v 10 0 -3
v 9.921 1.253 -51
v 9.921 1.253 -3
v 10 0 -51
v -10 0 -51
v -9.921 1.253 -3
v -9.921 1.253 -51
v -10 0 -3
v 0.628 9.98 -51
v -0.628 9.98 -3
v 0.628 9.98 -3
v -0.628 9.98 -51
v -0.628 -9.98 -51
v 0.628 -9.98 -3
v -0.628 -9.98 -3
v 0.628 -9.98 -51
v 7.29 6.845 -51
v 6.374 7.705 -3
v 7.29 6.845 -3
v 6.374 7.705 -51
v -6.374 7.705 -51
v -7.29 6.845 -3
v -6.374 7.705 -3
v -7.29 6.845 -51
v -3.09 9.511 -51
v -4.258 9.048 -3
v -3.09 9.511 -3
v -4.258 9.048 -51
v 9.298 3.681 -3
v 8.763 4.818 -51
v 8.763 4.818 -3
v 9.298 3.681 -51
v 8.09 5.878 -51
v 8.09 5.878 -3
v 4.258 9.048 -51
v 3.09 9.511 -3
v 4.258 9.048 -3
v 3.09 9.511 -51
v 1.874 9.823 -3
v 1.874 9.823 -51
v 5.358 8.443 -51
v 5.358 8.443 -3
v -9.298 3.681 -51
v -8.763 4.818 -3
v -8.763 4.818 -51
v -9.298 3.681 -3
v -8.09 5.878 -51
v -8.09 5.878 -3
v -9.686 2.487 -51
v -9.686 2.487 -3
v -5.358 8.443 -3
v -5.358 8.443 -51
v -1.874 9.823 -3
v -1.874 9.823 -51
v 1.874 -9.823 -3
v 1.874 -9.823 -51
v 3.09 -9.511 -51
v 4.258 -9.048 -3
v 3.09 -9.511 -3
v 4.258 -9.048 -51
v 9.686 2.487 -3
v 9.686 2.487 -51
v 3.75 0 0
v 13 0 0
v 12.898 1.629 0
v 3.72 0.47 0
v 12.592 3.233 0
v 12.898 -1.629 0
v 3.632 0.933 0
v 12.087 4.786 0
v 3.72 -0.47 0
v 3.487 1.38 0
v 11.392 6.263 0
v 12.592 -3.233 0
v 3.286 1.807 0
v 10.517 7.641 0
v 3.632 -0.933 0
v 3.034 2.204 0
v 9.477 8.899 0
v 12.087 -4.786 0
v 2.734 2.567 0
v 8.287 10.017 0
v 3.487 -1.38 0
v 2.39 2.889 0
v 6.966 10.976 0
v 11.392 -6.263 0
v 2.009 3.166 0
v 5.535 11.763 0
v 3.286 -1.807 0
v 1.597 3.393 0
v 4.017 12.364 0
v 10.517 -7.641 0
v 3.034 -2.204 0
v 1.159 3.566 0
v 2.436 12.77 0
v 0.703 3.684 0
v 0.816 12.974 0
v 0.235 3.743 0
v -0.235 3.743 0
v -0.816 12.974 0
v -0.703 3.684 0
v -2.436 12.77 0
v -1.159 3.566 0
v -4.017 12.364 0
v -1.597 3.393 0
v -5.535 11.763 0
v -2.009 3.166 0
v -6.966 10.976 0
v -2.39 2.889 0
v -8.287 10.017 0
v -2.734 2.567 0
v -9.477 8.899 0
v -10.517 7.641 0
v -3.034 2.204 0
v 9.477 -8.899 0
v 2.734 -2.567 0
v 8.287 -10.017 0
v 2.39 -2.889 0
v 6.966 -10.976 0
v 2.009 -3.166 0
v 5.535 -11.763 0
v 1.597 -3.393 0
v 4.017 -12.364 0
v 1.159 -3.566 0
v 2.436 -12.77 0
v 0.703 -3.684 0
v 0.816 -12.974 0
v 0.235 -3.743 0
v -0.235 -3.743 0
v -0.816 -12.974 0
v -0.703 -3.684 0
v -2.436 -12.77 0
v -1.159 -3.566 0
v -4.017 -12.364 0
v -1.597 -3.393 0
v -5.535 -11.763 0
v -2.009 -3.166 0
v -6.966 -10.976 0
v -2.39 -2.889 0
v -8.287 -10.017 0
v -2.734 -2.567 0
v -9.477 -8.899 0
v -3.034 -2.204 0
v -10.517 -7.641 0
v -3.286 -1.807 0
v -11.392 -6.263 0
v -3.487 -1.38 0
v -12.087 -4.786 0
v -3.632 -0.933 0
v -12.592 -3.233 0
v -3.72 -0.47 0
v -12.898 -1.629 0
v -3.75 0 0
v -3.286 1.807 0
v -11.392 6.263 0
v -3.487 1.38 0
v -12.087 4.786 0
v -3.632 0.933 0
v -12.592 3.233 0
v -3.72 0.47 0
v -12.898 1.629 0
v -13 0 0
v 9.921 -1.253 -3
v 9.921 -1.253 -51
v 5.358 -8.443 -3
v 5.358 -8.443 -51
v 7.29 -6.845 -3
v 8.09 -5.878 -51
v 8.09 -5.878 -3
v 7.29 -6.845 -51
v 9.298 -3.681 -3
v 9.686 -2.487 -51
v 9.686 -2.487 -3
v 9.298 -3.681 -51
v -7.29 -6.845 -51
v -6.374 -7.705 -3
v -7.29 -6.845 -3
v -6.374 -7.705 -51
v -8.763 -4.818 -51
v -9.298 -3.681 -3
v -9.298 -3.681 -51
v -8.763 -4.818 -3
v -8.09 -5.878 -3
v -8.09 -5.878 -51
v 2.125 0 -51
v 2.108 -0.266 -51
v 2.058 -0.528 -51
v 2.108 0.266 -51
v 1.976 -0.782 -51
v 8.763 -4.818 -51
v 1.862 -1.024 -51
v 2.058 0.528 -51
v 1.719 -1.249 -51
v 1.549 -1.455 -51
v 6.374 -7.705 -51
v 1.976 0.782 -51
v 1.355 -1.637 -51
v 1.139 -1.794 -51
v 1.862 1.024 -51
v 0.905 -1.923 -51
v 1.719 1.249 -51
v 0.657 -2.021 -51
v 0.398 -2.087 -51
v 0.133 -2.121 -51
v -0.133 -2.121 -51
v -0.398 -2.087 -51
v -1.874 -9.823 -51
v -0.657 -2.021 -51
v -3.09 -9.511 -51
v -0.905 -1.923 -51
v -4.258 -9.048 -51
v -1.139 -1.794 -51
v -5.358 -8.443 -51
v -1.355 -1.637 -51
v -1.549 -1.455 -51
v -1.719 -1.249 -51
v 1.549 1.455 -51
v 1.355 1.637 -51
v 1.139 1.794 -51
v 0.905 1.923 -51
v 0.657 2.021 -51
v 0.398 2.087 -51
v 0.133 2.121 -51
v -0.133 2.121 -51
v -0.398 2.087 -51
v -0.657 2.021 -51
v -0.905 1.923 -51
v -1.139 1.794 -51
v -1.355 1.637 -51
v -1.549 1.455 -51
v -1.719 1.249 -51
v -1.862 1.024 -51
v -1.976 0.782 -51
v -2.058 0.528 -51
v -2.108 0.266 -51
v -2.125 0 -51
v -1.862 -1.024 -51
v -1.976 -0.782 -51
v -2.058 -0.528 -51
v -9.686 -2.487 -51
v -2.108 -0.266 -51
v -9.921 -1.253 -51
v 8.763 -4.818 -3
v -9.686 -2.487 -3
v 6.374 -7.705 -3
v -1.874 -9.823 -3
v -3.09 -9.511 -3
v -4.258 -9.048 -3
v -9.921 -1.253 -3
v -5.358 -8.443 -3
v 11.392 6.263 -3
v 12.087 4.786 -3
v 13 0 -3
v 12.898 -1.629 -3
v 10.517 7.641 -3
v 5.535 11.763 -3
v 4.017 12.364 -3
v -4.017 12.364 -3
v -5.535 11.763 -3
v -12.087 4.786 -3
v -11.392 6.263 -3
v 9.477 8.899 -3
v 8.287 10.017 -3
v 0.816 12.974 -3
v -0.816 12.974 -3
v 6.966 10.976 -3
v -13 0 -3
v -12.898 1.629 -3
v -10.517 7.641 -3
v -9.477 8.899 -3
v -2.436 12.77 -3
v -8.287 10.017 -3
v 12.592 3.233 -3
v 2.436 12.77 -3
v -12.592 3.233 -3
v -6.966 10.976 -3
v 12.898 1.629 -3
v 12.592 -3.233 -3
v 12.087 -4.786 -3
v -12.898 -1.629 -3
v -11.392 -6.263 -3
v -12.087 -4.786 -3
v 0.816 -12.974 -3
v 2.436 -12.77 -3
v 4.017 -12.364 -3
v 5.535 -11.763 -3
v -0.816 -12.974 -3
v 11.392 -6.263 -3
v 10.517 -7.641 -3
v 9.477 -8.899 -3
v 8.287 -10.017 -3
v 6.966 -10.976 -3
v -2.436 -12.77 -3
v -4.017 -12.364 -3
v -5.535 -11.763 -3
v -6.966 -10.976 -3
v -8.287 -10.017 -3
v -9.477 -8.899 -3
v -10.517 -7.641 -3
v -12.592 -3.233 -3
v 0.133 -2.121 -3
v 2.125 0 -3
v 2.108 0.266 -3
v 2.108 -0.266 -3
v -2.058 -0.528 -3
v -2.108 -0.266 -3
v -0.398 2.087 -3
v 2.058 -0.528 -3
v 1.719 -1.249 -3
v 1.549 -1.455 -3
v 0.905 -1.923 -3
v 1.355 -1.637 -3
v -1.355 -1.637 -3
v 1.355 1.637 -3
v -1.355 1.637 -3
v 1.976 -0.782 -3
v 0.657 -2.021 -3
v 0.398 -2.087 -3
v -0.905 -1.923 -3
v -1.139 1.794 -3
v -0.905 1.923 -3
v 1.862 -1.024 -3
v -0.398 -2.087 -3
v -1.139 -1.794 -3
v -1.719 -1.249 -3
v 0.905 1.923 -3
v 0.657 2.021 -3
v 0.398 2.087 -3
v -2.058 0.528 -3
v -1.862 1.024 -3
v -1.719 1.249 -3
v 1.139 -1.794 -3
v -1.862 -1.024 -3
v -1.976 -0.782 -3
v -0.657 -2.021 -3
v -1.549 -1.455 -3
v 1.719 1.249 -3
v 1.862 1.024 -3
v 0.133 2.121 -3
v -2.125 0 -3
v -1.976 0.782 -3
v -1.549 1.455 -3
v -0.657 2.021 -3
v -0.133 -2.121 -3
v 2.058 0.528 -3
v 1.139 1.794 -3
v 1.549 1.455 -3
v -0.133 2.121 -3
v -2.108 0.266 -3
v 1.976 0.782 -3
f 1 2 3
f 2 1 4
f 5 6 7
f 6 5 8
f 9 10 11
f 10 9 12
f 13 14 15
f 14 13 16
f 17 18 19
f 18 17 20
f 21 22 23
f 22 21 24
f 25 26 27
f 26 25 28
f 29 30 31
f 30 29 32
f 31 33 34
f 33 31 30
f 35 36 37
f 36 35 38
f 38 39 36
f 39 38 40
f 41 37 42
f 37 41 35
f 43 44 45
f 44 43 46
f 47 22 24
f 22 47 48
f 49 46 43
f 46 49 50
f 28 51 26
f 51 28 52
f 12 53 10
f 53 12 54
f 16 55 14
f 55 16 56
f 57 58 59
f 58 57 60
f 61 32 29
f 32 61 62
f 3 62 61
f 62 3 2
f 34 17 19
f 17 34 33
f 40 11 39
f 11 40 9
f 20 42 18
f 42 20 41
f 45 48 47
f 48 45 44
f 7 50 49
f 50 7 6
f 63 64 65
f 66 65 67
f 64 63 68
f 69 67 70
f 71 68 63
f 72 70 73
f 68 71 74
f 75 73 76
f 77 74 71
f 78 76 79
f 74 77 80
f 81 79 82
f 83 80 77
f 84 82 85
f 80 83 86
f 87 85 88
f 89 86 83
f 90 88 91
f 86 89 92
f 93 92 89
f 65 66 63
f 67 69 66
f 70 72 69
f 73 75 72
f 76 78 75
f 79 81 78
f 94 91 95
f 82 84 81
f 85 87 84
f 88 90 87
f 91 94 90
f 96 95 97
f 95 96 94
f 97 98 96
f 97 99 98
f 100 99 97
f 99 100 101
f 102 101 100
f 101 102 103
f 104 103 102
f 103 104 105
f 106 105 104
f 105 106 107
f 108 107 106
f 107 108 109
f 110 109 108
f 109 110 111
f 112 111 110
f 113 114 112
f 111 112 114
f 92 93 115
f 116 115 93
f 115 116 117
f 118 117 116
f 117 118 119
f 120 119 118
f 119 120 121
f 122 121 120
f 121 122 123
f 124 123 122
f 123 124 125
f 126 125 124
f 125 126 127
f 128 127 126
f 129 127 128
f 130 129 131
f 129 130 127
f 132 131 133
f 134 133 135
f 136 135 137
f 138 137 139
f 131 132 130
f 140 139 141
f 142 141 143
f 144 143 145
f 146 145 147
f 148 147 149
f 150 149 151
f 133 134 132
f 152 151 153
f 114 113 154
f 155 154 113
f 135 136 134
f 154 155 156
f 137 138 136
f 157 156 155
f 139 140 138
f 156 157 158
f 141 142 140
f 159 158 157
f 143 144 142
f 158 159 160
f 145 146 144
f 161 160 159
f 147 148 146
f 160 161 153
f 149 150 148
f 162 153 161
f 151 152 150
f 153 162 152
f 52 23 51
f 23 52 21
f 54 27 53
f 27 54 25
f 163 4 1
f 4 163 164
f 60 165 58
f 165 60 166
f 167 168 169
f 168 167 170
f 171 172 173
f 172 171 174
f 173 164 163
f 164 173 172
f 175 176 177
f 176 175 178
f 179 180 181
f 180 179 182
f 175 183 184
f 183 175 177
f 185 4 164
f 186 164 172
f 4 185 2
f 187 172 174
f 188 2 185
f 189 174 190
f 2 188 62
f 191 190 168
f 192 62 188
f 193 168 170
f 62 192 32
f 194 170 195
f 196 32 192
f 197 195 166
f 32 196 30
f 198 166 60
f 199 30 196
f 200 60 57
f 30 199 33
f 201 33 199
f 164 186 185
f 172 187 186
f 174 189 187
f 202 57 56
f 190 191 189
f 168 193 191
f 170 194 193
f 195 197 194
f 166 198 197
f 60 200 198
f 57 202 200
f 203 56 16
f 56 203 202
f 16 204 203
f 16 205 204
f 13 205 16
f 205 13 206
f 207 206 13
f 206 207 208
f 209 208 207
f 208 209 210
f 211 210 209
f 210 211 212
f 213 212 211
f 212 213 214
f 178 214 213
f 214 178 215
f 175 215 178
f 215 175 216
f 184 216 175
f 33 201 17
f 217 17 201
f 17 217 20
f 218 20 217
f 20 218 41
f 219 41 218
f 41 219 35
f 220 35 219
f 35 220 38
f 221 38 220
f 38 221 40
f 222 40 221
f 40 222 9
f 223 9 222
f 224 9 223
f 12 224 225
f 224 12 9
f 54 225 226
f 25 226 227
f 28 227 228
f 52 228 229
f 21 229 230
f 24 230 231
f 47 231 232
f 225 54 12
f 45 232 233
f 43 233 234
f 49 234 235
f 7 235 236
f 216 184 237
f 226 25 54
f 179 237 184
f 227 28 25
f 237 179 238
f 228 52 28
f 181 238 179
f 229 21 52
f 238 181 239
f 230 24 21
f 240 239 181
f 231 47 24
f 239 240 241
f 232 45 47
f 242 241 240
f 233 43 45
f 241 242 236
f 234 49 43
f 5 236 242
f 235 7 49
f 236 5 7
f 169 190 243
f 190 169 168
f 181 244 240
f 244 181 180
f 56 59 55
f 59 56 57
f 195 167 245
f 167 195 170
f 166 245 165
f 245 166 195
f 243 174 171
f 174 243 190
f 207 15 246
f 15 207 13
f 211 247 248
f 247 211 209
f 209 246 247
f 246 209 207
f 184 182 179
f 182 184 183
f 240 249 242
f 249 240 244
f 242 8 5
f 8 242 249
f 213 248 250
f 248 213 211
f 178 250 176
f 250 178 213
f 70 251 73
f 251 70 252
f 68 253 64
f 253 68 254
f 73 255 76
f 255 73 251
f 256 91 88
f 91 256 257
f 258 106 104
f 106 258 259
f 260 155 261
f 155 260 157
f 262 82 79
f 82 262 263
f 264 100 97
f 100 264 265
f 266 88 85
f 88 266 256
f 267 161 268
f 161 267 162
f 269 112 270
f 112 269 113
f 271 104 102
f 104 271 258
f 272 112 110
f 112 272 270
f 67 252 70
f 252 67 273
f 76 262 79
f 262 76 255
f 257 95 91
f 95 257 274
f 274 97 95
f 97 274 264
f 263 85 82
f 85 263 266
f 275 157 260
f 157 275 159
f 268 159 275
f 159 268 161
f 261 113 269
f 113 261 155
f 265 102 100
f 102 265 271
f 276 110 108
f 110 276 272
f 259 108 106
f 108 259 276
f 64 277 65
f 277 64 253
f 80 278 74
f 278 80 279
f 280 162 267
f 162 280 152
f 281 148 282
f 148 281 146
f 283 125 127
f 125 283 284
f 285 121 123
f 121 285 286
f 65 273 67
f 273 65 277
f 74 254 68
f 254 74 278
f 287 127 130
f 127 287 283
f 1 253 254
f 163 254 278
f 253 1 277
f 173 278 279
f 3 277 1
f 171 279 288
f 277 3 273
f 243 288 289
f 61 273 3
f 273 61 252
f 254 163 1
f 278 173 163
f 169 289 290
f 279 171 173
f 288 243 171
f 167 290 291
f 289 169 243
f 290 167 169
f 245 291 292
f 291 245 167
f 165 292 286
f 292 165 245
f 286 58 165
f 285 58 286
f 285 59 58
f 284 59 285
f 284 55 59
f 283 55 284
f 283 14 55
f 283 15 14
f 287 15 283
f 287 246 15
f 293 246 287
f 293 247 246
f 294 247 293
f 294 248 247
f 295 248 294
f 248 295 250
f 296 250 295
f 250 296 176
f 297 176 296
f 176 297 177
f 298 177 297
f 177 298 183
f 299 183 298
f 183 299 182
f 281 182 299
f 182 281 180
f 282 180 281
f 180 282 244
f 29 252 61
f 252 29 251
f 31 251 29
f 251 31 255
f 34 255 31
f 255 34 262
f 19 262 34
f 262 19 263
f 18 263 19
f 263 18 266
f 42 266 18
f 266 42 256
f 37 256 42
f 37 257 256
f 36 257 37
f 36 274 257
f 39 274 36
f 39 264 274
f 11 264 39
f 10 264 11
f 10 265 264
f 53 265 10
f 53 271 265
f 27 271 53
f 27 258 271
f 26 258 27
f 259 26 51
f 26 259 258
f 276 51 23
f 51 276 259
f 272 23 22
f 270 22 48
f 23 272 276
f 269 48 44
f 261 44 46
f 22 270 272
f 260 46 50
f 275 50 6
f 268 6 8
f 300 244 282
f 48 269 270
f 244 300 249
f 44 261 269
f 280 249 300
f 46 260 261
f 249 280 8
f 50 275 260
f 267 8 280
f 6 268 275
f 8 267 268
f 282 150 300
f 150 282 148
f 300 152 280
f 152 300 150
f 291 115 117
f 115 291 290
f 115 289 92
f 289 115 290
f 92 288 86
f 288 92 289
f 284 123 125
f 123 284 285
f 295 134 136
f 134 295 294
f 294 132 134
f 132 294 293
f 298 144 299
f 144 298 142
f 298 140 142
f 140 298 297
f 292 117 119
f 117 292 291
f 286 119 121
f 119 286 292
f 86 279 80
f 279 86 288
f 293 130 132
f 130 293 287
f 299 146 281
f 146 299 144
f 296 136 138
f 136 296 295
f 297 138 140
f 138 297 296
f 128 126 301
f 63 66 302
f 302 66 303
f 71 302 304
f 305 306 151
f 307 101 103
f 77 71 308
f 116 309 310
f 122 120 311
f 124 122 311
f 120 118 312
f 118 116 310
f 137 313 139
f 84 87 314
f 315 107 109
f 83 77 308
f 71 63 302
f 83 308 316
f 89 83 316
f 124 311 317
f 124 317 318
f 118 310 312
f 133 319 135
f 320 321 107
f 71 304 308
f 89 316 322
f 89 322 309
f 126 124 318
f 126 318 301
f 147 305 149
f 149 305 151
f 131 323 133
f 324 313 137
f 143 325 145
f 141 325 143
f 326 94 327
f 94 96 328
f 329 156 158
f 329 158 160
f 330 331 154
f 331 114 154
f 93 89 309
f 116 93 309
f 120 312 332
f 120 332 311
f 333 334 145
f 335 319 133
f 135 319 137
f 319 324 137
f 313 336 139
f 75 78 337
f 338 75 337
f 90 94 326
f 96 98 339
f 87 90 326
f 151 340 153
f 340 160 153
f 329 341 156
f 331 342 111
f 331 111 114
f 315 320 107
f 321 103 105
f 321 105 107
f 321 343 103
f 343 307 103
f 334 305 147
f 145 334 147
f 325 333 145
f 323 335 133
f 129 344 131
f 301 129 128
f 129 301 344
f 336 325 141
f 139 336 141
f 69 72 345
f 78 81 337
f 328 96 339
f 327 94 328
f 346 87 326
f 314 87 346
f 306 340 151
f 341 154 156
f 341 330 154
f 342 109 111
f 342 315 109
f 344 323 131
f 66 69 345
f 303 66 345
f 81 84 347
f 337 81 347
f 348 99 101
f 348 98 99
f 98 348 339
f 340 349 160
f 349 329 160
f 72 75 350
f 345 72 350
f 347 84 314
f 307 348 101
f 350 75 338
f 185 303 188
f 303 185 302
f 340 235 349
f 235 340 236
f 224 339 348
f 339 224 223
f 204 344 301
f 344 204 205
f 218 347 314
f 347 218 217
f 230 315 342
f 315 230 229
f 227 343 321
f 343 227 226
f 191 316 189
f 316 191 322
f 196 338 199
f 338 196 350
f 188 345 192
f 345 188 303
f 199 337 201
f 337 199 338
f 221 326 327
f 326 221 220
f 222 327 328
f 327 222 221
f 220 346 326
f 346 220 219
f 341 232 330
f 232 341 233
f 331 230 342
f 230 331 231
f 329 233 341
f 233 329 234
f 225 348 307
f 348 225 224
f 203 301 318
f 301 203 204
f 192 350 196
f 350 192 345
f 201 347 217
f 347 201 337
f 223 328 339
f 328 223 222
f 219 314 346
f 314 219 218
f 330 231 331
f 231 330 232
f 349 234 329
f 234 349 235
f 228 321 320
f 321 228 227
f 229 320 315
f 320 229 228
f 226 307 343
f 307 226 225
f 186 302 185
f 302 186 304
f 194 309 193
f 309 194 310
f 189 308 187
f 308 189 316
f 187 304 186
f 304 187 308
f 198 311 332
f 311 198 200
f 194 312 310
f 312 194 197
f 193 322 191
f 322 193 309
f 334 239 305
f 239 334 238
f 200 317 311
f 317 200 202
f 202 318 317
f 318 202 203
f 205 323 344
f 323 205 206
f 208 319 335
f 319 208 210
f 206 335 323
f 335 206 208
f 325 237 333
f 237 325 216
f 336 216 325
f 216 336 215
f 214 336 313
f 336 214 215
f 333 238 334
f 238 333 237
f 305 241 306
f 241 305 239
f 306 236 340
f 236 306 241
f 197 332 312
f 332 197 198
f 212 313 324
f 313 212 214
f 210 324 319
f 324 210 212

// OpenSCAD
$fn = 50;


difference() {
	union() {
		translate(v = [0, 0, -51.0000000000]) {
			cylinder(h = 51, r = 10.0000000000);
		}
		translate(v = [0, 0, -3.0000000000]) {
			cylinder(h = 3, r = 13.0000000000);
		}
	}
	union() {
		translate(v = [0, 0, 0]) {
			rotate(a = [0, 0, 0]) {
				difference() {
					union() {
						#translate(v = [0, 0, -51.0000000000]) {
							cylinder(h = 51, r = 2.0000000000);
						}
						#translate(v = [0, 0, -3]) {
							cylinder(h = 3, r = 10.0000000000, r1 = 2.1250000000, r2 = 3.7500000000);
						}
						#translate(v = [0, 0, -51.0000000000]) {
							cylinder(h = 51, r = 2.1250000000);
						}
						#translate(v = [0, 0, -51.0000000000]) {
							cylinder(h = 51, r = 2.0000000000);
						}
					}
					union();
				}
			}
		}
	}
}
